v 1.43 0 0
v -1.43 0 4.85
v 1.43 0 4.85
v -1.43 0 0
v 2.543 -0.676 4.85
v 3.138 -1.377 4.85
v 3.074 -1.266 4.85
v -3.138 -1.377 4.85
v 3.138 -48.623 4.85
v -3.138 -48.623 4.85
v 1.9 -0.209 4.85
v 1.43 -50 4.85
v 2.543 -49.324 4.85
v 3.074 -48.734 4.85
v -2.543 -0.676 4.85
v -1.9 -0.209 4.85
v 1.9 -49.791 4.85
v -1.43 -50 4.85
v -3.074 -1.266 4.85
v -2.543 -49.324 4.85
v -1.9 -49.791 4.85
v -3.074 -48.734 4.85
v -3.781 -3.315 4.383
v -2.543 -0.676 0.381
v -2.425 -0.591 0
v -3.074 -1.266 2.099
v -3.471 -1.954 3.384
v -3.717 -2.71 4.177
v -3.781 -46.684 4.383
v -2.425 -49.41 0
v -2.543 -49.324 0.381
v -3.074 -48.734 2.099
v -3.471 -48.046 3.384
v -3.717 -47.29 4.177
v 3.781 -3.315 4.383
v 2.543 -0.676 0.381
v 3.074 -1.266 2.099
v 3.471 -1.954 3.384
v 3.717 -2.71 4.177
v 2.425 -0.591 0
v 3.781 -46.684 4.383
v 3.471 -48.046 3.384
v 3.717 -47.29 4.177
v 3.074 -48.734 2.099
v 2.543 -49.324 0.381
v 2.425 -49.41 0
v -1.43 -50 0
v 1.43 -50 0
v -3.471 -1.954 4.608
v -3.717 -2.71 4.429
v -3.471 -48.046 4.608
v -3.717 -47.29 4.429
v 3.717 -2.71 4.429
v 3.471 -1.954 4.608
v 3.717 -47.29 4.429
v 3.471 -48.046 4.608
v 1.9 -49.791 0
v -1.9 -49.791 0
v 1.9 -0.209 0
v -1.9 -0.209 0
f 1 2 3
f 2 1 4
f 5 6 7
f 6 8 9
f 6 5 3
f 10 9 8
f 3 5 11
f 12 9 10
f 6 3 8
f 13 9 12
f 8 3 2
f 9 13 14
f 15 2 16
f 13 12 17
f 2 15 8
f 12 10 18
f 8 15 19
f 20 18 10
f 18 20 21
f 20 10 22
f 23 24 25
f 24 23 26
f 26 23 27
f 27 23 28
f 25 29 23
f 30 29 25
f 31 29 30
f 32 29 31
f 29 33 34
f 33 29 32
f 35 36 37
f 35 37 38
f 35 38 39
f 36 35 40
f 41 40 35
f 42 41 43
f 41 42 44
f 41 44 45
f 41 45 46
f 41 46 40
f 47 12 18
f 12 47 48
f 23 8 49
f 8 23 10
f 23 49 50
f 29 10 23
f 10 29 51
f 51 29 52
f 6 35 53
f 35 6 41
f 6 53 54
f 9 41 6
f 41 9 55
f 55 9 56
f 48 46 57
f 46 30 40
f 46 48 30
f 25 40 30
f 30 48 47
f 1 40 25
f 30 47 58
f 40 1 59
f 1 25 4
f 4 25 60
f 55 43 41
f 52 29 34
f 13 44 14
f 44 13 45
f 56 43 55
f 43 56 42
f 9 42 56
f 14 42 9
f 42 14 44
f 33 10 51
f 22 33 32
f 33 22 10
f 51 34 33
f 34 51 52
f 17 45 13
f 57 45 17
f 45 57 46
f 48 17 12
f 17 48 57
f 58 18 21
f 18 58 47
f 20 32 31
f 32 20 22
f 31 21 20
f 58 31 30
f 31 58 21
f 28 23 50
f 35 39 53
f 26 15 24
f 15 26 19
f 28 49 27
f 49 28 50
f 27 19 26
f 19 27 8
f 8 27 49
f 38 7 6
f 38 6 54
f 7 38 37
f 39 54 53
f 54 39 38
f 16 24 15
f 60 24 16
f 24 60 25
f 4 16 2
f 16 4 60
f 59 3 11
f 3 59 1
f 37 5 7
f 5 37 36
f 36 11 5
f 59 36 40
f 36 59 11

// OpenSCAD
// file: long_bow_tie.scad
tilt_level = 1.1;

include <include.scad>;
include <globals.scad>;

obj_leg = 12;

max_width=scaled_male_dove_max_width();
min_width=scaled_male_dove_min_width();
depth=scaled_male_dove_depth();
length = 50;

module bow_tie_master(length){
	union(){
		mirror([0,1,0])	dovetail_3d(max_width, min_width, depth, length);
		dovetail_3d(max_width, min_width, depth, length);
	}
}

module long_bow_tie(length) {
    translate([0,0,depth]) intersection(){
        rotate([90,0,0]) bow_tie_master(length);
        rotate([90,0,0]) cylinder(r=5.8, h=200);
    }
}

module split(length) {
    translate([0,0,-1]) linear_extrude(height=length+2) polygon(points=[[0,-1], [1,-1], [2.1,-5], [-2.1,-5], [-1,-1]]);
}

module long_bow_tie_split(length) {
    translate([0,0,male_dove_depth-slop]) rotate([90,0,0]) difference() {
        translate([0,-(male_dove_depth-slop),0]) rotate([-90,0,0]) long_bow_tie(length);
        split(length);
        rotate([0,0,180]) split();
    }
}

module long_bow_tie_half(length=50) {
    rotate([0,-90,0]) intersection() {
        long_bow_tie(length);
        translate([0,-length,-1]) cube([6, length, 12]);
        translate([-length/1.9,-length/2,-3]) rotate([0,0,0]) cylinder(d=length*1.5,h=20,$fn=60);
    }
}

long_bow_tie_half(length);
//long_bow_tie(length);
//long_bow_tie_split(length);
// file: globals.scad
/*
Most things in this file is represented as one millimeter, so keep that in mind while changing things.
Some of the setting are not mm but at variables that you can set, such as 2*x=2x and you are setting what x is.
I will try to specify when things are variables and not exact measurements.
*/

// printer slop
slop = 0.15;

obj_leg = 30;
leg_length = 5.5;
small_number = 0.001;
metal_core_rode_global = 5;


///////////////// number of holes /////////////////////
z_hole_number = 8;
other_holes = 8;

///////////////// Pins /////////////////////

//pins that poke out
ball_size = 10;
pin_height = 20;
pin_diameter = 6;


//holes
hole_ball_size = ball_size;
hole_pin_height = pin_height;
hole_pin_diameter = pin_diameter;

///////////////// Z THINGS /////////////////////

berring_slot_width = 7.5;
berring_slot_depth = 6.5;
metal_core_rode = 5;

///////////////// X THINGS /////////////////////

//male dove tails
male_dove_max_width=8;
male_dove_min_width=5;
male_dove_depth=5;
male_dove_height=obj_leg/2;

function scaled_male_dove_max_width() = male_dove_max_width - slop;
function scaled_male_dove_min_width() = male_dove_min_width - slop;
function scaled_male_dove_depth() = male_dove_depth - slop;

//female dove tails, this is found on the y mounts
girl_max_width=11;
girl_min_width=5;
girl_depth=5;
girl_height=obj_leg;


///////////////// Y THINGS /////////////////////
/*
The Y is so normal that all of those global variables at the top should change all of the setting in it, this section is set her incase there are variables set in the future development of this project.
*/

// stepper
motor_side_length = 43.2;
motor_bolt_hole_distance = 31;
motor_center_hole = 23;
motor_shaft_dia = 5;
motor_shaft_hole_dia = 5+2*slop;

// bolts etc.
bolt_hole_dia = 3+2*slop;
bolt_head_hole_dia = 5.8;

m4_bolt_hole_dia = 4+2*slop;
m4_bolt_head_hole_dia = 6.8+2*slop;


m3_nut_side = 5.65;
m3_nut_height = 2.3;
m4_nut_side = 6.85;
m4_nut_height = 3.1;

// threaded rod
lifter_rod_diam = 9.86;
hole_threaded_rod = lifter_rod_diam+2*slop;

// for the extensions
metal_rod_size = 9;
// main file
length = 50;

include <include.scad>;
include <globals.scad>;

use <long_bow_tie.scad>;

$fn=30;
module end(){
    difference() {
        translate([-4, -5, -0.2]) cube([8, 5, 6]);
        translate([0, 0, -0.5])cylinder(r=3.8, h=7);
    }
}

module tie(length) {
    translate([0,0,scaled_male_dove_depth()]) rotate([0,180,0]) difference(){
        long_bow_tie(length);
        translate([-5,-length-1,scaled_male_dove_depth()]) cube([10,length+2,male_dove_depth]);
    }
}

module long_tie(length=50) {
    difference () {
        tie(length);
        translate([0, -(length -3.5), 0]) end();
        translate([0, -3.5, 0]) rotate([0,0,180]) end();
    }
}

module long_tie_split(length=50) {
    union() {
        difference() {
            translate([0,0,-male_dove_depth+slop]) long_bow_tie_split(length);
            translate([0,-length/2, -3.5]) cube([10,length+1,7], center=true);
        }
        translate([0,-length/2, 0.8]) cube([4,length,1.6], center=true);
    }
}

module long_tie_half(length=50) {
    rotate([0,-90,0]) intersection() {
        long_tie(length);
        translate([0,-length,0]) cube([5,length,5]);
    }
}

long_tie(length);
//long_tie_half(length);
//long_tie_split(length);
